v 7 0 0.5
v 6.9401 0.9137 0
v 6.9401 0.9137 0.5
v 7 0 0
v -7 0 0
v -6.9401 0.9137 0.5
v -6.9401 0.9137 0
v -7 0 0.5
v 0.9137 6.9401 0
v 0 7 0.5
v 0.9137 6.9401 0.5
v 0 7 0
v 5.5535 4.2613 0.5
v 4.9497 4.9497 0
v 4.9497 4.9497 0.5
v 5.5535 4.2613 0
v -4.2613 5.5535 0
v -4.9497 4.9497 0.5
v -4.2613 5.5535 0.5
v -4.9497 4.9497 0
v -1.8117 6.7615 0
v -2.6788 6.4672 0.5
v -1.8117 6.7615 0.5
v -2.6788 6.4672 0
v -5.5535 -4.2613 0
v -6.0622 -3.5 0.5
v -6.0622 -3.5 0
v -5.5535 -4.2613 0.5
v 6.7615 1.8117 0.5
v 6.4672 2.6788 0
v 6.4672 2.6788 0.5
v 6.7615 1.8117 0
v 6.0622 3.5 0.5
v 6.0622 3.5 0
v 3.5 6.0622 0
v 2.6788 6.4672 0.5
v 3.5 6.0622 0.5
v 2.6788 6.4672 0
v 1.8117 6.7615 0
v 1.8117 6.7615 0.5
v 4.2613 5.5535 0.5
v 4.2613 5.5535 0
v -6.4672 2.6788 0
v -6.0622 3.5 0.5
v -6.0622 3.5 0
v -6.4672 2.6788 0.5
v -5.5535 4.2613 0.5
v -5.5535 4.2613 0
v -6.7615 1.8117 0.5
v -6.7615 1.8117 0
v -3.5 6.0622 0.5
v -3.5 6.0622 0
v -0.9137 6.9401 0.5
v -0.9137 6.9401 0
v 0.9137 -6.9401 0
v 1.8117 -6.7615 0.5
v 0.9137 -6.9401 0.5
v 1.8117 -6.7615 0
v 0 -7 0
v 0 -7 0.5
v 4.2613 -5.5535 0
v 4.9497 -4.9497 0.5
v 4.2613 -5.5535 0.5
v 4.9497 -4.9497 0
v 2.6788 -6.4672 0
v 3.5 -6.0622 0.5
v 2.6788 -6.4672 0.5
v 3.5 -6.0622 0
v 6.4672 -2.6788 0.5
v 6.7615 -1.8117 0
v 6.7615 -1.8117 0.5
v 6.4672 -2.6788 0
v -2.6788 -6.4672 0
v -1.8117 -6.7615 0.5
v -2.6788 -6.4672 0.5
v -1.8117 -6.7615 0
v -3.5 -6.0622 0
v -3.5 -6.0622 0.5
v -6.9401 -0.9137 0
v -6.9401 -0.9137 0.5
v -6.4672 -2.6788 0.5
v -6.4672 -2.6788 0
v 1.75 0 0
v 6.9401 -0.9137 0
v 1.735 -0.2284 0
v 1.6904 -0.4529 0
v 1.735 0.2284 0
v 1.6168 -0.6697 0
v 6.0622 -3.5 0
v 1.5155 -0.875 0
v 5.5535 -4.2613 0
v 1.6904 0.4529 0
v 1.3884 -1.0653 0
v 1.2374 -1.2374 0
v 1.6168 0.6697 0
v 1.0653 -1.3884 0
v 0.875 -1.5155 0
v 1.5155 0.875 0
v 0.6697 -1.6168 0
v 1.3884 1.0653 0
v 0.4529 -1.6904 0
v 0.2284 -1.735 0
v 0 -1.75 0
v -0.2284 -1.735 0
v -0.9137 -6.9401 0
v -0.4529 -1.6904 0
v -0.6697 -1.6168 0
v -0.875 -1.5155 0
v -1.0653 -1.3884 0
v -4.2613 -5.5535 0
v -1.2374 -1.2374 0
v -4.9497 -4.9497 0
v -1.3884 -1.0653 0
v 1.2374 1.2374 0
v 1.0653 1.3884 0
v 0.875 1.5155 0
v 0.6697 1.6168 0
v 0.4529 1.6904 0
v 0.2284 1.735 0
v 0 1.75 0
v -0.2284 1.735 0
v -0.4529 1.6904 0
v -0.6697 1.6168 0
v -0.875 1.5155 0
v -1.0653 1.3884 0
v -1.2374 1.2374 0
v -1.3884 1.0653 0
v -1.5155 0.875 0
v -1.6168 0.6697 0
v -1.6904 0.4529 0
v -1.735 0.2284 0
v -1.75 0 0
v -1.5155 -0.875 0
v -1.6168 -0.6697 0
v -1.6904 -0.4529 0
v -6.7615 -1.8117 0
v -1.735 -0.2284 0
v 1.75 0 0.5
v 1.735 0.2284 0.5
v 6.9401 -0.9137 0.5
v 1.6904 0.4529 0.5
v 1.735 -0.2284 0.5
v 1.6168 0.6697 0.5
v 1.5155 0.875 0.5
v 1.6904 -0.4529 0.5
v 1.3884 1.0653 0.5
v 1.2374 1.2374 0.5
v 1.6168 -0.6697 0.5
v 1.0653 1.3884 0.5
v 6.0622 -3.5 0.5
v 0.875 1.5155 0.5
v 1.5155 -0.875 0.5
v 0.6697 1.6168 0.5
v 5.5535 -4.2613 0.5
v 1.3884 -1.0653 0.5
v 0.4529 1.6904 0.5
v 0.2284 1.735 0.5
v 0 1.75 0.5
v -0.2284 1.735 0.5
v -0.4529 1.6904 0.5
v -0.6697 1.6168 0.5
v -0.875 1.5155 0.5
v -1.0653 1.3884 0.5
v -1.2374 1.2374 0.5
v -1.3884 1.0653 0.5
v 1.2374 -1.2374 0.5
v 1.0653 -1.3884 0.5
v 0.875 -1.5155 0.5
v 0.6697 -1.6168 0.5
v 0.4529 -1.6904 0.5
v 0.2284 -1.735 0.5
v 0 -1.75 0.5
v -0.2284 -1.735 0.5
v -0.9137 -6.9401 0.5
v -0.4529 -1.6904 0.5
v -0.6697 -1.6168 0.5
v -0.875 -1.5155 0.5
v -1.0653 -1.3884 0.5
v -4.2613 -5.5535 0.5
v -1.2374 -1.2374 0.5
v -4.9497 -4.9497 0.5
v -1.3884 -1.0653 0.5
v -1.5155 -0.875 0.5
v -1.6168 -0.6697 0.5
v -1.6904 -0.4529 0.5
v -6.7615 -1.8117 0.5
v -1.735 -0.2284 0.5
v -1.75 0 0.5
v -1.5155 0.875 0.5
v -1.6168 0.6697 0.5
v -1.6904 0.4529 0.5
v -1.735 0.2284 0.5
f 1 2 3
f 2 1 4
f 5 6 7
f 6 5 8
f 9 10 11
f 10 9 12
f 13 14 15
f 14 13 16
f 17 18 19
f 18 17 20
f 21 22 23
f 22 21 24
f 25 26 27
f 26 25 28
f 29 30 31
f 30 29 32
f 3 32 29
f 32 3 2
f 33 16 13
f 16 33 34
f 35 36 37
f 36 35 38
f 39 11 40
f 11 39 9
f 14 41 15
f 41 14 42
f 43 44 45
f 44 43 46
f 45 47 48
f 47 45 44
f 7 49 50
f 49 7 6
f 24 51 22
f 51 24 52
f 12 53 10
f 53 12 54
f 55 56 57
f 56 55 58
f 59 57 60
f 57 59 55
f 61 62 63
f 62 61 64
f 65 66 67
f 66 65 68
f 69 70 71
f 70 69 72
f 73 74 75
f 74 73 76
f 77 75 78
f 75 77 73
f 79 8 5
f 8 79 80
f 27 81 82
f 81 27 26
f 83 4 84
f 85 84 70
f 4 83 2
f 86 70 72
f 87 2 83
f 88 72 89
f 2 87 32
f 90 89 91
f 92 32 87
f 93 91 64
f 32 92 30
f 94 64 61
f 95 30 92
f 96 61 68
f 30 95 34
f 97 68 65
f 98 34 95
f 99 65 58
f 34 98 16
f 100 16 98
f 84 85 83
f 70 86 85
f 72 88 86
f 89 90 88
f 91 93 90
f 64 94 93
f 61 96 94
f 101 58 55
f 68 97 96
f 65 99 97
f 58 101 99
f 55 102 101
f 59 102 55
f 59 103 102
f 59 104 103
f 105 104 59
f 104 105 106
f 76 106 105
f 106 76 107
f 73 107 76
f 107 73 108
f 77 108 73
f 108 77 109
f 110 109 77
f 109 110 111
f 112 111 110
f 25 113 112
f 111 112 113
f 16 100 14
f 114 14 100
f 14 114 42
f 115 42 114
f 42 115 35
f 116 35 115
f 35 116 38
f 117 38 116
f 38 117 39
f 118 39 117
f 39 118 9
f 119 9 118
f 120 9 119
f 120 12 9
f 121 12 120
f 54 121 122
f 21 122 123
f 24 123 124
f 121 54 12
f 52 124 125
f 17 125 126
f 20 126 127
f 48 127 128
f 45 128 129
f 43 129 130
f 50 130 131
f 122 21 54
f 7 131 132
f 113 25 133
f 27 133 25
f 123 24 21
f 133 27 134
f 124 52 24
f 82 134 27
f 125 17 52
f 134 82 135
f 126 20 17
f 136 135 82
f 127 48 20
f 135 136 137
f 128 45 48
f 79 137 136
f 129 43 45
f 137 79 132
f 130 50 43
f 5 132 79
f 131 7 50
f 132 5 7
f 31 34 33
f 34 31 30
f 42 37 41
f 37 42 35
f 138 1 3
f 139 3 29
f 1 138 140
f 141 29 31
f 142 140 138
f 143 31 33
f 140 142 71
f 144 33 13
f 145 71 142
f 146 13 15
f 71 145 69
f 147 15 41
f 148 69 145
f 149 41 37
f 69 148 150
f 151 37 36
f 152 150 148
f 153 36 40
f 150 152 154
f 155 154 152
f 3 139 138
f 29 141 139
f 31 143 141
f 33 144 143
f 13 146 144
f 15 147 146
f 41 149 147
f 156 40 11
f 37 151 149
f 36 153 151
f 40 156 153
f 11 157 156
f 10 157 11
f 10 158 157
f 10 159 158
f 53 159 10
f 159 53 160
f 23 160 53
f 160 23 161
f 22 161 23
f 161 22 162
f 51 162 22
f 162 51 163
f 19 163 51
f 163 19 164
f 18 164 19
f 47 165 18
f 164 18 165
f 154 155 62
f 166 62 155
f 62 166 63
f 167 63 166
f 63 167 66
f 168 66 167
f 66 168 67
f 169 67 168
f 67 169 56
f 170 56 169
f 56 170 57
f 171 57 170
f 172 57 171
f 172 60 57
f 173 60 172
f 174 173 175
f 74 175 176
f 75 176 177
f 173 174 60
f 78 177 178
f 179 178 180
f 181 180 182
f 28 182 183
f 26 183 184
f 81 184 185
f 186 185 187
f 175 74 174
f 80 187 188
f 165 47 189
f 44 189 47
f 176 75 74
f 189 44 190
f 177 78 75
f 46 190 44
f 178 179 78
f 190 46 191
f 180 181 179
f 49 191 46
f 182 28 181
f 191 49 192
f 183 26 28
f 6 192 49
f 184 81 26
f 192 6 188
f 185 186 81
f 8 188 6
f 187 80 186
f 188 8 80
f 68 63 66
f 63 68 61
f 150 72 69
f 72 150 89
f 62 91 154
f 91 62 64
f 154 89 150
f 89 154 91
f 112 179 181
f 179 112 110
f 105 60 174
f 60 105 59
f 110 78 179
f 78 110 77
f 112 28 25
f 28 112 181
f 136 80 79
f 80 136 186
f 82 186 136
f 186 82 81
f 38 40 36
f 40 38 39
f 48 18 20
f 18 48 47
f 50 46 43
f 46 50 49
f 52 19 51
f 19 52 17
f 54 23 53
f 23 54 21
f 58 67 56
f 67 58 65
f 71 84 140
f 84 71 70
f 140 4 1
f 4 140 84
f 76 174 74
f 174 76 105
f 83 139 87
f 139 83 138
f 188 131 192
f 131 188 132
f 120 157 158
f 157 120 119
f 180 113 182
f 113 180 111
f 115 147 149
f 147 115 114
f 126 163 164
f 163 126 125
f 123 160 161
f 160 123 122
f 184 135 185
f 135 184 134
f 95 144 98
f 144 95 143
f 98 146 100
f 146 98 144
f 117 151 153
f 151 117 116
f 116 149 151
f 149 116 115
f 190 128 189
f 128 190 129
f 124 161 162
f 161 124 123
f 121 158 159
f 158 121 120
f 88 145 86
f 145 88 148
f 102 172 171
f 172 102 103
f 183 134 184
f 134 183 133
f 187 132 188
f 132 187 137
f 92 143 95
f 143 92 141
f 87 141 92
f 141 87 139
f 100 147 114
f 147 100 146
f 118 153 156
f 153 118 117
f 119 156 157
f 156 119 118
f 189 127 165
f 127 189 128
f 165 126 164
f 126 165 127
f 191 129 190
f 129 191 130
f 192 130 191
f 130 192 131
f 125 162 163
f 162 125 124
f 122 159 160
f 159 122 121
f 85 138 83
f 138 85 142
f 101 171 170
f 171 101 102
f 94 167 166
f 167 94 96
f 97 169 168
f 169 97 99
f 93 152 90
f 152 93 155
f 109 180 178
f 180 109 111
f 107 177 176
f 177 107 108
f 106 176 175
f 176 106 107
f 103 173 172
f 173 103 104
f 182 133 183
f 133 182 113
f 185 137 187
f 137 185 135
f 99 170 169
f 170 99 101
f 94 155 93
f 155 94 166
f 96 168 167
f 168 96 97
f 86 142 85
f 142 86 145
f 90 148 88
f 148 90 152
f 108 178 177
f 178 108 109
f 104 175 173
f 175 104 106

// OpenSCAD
// Gen-EE — assembly gap shim, h = run_clear (rotor face -> flange); copper is inside the flanges
include <parameters.scad>;
$fn = 48;
difference() {
    cylinder(d=spacer_pad_od, h=gap_spacer_h);
    translate([0, 0, -0.1]) cylinder(d=spacer_pad_id, h=gap_spacer_h + 0.2);
}
